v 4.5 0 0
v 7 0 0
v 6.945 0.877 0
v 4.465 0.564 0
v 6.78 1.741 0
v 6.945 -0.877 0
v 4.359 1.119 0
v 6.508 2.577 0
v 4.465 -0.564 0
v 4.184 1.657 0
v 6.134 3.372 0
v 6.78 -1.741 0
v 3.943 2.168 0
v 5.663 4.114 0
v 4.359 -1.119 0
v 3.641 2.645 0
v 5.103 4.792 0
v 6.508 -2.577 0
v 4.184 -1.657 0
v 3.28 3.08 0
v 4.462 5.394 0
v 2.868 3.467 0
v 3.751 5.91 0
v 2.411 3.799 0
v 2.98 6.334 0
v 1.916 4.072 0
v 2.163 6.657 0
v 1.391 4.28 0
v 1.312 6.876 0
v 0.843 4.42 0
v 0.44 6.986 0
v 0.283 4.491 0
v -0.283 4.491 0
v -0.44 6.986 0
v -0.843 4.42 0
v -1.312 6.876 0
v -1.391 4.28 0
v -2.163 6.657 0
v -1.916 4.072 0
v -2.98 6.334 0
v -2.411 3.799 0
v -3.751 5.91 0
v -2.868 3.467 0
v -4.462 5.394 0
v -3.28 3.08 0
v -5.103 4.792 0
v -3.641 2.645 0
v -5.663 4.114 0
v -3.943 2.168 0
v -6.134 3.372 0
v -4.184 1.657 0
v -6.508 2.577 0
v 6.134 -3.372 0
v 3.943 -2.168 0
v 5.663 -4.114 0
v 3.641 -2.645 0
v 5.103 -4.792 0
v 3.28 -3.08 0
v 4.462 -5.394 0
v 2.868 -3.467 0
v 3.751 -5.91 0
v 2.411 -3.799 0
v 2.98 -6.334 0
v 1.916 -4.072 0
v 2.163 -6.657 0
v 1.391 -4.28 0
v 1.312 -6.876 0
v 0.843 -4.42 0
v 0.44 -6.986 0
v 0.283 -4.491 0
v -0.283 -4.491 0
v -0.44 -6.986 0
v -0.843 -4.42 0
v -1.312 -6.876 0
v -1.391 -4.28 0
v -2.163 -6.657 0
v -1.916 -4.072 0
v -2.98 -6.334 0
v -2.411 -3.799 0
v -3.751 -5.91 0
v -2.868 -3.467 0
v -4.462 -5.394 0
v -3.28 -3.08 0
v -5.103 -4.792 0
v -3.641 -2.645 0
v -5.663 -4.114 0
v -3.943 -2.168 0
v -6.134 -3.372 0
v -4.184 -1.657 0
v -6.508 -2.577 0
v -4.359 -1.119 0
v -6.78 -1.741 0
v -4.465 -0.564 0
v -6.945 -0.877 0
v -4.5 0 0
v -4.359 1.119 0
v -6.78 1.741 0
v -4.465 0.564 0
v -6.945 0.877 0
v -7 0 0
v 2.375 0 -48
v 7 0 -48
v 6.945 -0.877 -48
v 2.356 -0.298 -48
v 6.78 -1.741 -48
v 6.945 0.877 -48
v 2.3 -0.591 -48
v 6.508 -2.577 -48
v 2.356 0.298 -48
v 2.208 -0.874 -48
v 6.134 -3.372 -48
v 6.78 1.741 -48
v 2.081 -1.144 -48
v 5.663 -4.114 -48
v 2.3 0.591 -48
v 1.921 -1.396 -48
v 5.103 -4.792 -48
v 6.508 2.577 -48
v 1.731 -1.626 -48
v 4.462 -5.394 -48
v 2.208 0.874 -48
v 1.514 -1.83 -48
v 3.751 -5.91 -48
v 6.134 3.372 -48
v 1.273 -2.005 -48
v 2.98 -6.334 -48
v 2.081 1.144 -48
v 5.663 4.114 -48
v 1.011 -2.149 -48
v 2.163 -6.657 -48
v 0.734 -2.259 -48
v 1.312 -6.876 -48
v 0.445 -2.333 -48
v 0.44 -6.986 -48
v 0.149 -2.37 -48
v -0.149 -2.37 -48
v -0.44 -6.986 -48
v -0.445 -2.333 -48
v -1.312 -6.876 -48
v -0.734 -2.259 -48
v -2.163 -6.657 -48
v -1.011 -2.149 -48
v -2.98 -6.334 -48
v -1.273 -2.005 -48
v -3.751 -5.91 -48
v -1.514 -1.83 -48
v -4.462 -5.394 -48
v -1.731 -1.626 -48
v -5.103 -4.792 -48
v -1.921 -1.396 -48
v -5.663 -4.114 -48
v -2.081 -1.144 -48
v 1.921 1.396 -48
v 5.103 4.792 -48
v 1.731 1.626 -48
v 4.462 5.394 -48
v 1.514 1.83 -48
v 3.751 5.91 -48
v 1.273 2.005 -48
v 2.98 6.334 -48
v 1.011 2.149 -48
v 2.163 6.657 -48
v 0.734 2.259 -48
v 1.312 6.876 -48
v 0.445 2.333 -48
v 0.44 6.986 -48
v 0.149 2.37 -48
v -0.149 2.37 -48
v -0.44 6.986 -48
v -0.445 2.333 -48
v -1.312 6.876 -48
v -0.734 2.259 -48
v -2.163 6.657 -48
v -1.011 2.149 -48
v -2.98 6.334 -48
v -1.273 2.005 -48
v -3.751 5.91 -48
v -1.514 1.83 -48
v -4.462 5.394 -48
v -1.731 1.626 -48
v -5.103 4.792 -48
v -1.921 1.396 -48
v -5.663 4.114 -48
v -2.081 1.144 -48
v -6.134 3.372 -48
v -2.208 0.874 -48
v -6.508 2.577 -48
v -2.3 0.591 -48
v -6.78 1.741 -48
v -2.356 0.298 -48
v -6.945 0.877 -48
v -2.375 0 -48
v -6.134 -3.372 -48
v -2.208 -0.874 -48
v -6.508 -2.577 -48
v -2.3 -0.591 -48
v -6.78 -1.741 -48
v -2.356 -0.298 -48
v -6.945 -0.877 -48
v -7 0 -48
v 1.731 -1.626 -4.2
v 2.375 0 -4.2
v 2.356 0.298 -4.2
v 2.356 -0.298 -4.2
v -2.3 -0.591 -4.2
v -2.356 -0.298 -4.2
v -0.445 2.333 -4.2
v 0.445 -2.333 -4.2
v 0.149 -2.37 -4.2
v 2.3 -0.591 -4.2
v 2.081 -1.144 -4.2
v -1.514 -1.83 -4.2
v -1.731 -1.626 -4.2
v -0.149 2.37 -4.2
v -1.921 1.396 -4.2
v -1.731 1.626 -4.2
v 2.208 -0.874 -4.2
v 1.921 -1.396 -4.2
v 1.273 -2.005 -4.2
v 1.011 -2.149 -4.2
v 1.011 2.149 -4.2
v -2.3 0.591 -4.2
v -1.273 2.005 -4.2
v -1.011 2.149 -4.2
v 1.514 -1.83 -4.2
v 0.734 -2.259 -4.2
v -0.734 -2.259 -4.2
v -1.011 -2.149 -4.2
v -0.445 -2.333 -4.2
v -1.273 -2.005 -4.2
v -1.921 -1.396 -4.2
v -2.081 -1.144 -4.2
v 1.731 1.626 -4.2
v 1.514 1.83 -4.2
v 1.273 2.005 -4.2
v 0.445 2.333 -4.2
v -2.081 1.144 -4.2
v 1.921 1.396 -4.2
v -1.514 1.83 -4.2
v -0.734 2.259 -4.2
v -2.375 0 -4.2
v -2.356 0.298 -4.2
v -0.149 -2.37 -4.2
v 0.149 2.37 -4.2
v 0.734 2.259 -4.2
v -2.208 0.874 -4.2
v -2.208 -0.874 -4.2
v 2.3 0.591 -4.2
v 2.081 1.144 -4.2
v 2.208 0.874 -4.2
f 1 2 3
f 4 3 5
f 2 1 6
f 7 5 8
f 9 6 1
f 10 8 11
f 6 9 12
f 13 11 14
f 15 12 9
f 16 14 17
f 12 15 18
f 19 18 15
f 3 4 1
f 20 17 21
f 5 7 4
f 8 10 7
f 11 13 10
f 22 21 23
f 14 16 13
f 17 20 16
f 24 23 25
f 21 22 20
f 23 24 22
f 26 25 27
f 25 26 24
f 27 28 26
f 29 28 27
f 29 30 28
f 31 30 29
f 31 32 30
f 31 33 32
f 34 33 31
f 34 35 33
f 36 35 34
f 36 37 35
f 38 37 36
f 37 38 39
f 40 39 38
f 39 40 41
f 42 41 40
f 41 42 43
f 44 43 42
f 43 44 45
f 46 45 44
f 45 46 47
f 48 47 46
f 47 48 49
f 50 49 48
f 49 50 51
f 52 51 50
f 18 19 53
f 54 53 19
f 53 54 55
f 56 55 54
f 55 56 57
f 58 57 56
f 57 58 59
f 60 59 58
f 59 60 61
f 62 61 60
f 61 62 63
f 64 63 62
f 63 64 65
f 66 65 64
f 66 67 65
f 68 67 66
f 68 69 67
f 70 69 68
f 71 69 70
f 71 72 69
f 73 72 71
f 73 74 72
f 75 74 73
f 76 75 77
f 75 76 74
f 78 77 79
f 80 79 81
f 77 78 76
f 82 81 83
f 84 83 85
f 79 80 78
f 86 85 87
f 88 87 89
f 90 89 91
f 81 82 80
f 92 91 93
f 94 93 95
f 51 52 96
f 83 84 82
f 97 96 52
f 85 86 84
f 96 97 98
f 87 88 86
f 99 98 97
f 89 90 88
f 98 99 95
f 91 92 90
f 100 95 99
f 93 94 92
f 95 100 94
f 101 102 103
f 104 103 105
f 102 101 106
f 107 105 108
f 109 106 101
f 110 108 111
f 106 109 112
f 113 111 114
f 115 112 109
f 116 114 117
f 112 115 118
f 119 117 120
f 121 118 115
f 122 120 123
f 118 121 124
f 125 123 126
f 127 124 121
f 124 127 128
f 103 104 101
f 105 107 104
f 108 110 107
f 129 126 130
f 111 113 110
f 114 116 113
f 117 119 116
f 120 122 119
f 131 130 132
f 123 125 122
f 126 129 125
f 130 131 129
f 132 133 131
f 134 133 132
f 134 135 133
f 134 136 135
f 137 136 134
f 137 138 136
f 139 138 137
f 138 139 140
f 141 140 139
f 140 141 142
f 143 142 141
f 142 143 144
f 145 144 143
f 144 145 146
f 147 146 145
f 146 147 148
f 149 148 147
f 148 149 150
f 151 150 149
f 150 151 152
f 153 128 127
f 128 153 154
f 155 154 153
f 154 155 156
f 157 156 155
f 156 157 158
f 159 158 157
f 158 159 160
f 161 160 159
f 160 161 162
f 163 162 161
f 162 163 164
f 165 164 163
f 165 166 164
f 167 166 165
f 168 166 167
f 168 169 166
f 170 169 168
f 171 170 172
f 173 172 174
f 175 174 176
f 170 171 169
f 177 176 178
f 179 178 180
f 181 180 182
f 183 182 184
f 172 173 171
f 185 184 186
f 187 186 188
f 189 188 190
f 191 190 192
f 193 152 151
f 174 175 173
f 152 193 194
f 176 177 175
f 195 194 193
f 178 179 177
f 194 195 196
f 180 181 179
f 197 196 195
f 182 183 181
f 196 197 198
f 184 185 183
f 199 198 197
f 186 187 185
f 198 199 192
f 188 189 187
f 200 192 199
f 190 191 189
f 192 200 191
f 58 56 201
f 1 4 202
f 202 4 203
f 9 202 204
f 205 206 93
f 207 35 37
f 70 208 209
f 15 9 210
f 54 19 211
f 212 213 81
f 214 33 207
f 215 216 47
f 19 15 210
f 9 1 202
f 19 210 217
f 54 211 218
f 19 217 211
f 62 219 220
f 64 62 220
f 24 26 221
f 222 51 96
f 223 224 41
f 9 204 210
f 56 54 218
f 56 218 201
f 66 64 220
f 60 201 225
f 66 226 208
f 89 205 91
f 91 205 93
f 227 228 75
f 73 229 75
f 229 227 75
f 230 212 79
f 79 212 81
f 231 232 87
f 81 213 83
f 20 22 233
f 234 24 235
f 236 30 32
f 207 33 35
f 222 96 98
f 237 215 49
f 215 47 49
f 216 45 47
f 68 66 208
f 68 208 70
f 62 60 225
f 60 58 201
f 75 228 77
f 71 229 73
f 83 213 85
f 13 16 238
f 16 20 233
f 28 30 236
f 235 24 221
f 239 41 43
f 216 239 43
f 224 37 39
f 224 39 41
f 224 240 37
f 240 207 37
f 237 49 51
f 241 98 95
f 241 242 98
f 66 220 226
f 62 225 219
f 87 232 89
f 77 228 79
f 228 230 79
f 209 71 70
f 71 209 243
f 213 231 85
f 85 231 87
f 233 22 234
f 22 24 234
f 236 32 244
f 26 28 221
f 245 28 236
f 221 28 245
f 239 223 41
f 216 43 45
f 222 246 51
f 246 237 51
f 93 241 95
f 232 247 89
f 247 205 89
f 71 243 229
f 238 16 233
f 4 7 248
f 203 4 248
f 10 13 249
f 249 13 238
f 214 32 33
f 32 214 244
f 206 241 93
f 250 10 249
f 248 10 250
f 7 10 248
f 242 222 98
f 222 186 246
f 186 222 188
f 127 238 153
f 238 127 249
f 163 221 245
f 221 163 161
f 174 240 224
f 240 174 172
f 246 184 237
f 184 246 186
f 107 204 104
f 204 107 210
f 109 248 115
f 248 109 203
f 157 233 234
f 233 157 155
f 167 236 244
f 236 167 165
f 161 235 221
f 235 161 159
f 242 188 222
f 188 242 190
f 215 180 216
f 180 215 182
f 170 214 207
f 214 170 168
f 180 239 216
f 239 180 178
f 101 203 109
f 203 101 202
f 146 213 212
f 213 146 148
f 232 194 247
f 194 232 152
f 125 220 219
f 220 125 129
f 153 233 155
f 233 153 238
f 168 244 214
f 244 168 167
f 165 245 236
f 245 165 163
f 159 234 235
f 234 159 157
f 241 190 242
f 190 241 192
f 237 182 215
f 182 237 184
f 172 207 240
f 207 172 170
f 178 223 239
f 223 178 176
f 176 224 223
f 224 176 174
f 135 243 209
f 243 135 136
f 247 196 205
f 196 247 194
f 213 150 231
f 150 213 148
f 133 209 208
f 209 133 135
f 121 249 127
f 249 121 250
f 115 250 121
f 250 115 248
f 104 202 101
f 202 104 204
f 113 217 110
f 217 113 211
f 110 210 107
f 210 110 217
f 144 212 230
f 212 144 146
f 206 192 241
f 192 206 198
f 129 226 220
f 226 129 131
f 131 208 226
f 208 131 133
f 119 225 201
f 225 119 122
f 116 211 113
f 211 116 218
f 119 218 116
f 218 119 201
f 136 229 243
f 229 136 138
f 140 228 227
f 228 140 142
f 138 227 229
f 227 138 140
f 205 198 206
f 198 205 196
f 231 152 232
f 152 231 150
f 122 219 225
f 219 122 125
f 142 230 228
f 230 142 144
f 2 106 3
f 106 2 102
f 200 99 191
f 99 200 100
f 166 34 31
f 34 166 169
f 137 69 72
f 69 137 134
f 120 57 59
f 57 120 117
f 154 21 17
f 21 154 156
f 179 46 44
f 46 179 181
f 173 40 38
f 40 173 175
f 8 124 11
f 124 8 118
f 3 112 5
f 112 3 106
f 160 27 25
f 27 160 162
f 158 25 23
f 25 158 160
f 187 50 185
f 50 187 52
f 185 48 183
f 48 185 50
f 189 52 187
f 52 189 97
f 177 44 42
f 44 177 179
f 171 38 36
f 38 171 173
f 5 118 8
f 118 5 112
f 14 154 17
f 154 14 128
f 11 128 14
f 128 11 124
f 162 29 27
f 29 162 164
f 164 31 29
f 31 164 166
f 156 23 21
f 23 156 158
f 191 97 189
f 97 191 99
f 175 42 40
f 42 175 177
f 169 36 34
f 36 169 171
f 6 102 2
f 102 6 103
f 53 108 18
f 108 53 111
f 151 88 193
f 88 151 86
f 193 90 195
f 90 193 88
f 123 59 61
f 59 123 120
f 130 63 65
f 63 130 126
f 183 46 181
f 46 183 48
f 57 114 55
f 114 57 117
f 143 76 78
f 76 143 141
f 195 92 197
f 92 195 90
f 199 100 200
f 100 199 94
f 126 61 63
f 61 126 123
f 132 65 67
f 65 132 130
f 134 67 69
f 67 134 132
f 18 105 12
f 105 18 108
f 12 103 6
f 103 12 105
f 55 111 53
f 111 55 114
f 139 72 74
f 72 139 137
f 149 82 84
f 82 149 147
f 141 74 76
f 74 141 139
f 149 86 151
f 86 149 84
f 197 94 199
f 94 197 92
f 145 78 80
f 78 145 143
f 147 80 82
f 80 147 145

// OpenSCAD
$fn = 50;


difference() {
	union() {
		translate(v = [0, 0, -48.0000000000]) {
			cylinder(h = 48, r = 7.0000000000);
		}
		cylinder(h = 0, r = 17.0000000000);
	}
	union() {
		translate(v = [0, 0, 0]) {
			rotate(a = [0, 0, 0]) {
				difference() {
					union() {
						#translate(v = [0, 0, -48.0000000000]) {
							cylinder(h = 48, r = 2.2500000000);
						}
						#translate(v = [0, 0, -4.2000000000]) {
							cylinder(h = 4.2000000000, r1 = 2.3750000000, r2 = 4.5000000000);
						}
						#translate(v = [0, 0, -48.0000000000]) {
							cylinder(h = 48, r = 2.3750000000);
						}
						#translate(v = [0, 0, -48.0000000000]) {
							cylinder(h = 48, r = 2.2500000000);
						}
					}
					union();
				}
			}
		}
	}
}
